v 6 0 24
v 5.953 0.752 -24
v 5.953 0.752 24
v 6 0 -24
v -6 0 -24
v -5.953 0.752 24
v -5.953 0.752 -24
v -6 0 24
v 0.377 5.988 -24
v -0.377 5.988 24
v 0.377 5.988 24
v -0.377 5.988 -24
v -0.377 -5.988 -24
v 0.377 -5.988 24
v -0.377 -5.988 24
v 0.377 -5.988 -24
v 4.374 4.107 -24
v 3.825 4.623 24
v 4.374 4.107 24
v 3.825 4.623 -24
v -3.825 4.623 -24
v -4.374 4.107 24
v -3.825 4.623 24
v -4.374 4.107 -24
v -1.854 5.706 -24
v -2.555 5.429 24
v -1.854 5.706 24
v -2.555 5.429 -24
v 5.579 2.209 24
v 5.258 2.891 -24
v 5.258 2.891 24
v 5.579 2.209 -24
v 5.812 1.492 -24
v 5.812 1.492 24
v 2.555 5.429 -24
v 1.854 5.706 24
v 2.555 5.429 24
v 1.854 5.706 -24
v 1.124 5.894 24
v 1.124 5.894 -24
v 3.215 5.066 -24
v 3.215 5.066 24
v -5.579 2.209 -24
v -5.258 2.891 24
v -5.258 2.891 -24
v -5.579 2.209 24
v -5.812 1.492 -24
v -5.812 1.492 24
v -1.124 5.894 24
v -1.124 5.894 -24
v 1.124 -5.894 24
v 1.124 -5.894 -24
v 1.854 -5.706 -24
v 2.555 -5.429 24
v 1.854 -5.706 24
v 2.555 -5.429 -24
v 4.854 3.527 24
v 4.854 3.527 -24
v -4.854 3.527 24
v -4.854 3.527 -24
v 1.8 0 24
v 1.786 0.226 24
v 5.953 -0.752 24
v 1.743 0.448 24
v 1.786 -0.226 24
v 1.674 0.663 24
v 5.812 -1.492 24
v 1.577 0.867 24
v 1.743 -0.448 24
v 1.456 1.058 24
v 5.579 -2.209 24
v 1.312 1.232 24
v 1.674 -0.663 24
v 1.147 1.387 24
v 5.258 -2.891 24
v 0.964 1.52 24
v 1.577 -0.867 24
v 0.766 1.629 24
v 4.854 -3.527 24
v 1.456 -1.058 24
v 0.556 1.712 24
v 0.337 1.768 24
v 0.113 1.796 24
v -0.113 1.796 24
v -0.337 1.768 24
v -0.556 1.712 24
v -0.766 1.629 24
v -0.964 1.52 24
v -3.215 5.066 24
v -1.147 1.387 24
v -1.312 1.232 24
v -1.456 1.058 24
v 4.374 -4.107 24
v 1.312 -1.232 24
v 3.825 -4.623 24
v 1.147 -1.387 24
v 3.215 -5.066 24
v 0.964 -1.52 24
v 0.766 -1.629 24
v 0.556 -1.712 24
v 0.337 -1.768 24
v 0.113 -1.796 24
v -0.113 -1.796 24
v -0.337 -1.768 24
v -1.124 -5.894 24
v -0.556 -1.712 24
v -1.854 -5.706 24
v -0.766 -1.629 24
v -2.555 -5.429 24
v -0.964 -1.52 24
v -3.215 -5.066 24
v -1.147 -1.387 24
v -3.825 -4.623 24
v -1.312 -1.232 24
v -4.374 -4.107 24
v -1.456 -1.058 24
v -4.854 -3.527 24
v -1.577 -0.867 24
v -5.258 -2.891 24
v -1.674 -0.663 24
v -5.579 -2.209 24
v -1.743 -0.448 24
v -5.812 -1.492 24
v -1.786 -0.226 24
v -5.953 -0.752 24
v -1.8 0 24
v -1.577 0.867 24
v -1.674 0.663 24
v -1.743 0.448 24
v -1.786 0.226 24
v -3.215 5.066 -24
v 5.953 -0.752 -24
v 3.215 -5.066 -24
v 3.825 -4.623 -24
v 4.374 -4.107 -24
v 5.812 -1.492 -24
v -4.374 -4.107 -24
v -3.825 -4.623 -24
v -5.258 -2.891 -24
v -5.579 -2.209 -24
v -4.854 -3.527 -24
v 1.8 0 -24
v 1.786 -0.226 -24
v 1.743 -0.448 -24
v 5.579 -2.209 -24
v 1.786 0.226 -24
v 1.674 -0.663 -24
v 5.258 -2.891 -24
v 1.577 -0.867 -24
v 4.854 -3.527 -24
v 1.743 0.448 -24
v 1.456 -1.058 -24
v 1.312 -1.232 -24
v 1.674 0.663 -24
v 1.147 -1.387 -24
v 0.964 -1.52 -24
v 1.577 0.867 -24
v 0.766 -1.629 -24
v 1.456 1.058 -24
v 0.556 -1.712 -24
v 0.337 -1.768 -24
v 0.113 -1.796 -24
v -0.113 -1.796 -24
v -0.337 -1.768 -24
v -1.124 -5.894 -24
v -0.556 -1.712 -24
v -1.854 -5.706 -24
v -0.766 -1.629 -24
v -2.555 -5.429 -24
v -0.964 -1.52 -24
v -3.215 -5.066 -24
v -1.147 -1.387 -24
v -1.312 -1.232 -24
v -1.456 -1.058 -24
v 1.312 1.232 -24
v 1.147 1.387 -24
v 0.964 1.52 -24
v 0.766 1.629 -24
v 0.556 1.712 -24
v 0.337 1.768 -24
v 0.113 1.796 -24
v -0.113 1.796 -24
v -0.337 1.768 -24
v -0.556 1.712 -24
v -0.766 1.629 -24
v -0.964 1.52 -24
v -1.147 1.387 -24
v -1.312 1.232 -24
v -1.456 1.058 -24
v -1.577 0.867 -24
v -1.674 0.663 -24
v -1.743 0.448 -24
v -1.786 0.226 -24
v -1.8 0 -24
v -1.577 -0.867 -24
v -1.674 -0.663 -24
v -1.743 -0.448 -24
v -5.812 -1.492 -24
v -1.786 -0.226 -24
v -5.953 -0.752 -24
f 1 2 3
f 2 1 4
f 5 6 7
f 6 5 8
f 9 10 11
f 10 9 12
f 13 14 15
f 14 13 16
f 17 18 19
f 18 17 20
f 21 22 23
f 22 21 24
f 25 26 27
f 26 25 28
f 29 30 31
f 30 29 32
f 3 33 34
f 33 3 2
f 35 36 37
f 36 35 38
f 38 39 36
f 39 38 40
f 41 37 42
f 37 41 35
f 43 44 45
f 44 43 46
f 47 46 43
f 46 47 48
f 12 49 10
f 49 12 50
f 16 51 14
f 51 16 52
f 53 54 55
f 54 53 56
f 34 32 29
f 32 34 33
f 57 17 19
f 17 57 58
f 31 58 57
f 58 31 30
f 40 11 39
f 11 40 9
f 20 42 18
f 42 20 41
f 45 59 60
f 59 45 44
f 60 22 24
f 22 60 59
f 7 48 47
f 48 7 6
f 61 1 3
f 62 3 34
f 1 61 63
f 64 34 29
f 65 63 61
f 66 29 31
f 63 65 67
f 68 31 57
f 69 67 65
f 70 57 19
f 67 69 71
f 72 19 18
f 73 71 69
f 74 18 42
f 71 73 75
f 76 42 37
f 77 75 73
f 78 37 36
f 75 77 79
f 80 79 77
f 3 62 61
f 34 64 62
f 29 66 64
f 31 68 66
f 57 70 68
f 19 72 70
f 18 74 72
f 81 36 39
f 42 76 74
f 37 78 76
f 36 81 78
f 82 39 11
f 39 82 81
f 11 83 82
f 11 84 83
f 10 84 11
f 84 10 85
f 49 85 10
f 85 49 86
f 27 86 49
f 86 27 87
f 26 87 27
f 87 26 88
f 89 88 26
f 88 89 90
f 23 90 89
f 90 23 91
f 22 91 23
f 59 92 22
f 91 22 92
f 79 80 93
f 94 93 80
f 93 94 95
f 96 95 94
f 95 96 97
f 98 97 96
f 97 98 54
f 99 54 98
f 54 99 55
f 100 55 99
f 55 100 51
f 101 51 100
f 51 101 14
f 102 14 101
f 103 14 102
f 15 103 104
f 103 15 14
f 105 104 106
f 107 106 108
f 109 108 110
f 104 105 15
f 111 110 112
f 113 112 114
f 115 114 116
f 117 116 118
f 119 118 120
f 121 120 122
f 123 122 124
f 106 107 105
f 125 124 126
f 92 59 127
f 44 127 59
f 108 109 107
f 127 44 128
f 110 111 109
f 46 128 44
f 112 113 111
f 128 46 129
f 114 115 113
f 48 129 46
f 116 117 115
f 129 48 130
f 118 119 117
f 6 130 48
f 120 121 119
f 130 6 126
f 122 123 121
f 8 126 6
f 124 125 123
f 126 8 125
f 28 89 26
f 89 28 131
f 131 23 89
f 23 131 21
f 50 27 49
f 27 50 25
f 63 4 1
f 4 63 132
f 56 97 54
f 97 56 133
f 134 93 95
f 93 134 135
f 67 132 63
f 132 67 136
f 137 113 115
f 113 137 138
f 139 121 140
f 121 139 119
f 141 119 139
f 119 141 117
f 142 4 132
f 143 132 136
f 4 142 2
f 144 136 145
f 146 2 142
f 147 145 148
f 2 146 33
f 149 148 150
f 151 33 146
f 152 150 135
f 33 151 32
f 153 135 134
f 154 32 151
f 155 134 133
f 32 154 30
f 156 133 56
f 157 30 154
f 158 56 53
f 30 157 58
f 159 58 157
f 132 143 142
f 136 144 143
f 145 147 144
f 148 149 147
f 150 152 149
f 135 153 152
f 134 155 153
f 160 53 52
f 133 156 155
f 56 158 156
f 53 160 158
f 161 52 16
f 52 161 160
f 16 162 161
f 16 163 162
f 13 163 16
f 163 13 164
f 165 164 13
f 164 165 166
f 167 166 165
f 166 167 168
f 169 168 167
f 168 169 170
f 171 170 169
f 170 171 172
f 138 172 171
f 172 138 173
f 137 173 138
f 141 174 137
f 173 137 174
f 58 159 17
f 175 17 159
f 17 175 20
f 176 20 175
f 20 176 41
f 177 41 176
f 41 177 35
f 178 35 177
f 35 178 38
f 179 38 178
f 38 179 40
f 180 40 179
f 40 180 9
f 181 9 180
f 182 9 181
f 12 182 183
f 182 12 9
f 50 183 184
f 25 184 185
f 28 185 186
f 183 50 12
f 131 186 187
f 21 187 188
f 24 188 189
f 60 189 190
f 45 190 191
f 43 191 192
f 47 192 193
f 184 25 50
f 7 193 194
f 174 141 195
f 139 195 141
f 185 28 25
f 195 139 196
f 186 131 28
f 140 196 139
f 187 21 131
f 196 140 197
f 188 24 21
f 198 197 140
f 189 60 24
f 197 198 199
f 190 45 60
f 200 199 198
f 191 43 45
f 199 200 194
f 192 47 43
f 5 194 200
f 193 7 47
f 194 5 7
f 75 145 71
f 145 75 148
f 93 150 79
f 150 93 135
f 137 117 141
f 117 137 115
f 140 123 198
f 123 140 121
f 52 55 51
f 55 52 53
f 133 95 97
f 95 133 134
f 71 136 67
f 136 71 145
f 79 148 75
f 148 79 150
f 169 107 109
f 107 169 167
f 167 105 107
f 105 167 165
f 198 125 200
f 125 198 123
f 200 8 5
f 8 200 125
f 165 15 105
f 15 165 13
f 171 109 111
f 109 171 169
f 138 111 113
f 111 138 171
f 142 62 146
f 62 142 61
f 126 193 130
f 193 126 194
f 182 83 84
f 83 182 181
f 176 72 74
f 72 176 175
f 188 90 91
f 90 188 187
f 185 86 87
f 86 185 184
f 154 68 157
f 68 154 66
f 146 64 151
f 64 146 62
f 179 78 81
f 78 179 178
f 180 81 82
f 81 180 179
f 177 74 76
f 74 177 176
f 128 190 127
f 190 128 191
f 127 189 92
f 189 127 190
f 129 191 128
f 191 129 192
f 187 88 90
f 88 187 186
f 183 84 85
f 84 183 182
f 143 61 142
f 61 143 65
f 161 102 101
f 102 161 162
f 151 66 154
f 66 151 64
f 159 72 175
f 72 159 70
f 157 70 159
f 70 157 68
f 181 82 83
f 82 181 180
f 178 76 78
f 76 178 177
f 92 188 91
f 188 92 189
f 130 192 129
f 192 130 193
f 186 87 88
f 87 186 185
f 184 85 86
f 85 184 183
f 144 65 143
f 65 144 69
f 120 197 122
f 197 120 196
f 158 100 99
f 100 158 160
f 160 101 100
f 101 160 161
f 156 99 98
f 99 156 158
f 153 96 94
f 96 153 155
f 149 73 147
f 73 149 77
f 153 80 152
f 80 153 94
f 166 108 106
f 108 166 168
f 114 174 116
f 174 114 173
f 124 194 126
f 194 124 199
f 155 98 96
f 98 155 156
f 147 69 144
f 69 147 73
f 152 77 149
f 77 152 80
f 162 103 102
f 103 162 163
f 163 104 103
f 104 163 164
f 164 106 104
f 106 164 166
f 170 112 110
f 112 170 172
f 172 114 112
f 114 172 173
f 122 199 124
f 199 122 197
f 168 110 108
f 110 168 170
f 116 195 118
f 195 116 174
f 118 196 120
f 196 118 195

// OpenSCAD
$fn = 50;


difference() {
	union() {
		translate(v = [0, 0, -24.0000000000]) {
			cylinder(h = 48, r = 6.0000000000);
		}
	}
	union() {
		translate(v = [0, 0, -100.0000000000]) {
			cylinder(h = 200, r = 1.8000000000);
		}
	}
}
